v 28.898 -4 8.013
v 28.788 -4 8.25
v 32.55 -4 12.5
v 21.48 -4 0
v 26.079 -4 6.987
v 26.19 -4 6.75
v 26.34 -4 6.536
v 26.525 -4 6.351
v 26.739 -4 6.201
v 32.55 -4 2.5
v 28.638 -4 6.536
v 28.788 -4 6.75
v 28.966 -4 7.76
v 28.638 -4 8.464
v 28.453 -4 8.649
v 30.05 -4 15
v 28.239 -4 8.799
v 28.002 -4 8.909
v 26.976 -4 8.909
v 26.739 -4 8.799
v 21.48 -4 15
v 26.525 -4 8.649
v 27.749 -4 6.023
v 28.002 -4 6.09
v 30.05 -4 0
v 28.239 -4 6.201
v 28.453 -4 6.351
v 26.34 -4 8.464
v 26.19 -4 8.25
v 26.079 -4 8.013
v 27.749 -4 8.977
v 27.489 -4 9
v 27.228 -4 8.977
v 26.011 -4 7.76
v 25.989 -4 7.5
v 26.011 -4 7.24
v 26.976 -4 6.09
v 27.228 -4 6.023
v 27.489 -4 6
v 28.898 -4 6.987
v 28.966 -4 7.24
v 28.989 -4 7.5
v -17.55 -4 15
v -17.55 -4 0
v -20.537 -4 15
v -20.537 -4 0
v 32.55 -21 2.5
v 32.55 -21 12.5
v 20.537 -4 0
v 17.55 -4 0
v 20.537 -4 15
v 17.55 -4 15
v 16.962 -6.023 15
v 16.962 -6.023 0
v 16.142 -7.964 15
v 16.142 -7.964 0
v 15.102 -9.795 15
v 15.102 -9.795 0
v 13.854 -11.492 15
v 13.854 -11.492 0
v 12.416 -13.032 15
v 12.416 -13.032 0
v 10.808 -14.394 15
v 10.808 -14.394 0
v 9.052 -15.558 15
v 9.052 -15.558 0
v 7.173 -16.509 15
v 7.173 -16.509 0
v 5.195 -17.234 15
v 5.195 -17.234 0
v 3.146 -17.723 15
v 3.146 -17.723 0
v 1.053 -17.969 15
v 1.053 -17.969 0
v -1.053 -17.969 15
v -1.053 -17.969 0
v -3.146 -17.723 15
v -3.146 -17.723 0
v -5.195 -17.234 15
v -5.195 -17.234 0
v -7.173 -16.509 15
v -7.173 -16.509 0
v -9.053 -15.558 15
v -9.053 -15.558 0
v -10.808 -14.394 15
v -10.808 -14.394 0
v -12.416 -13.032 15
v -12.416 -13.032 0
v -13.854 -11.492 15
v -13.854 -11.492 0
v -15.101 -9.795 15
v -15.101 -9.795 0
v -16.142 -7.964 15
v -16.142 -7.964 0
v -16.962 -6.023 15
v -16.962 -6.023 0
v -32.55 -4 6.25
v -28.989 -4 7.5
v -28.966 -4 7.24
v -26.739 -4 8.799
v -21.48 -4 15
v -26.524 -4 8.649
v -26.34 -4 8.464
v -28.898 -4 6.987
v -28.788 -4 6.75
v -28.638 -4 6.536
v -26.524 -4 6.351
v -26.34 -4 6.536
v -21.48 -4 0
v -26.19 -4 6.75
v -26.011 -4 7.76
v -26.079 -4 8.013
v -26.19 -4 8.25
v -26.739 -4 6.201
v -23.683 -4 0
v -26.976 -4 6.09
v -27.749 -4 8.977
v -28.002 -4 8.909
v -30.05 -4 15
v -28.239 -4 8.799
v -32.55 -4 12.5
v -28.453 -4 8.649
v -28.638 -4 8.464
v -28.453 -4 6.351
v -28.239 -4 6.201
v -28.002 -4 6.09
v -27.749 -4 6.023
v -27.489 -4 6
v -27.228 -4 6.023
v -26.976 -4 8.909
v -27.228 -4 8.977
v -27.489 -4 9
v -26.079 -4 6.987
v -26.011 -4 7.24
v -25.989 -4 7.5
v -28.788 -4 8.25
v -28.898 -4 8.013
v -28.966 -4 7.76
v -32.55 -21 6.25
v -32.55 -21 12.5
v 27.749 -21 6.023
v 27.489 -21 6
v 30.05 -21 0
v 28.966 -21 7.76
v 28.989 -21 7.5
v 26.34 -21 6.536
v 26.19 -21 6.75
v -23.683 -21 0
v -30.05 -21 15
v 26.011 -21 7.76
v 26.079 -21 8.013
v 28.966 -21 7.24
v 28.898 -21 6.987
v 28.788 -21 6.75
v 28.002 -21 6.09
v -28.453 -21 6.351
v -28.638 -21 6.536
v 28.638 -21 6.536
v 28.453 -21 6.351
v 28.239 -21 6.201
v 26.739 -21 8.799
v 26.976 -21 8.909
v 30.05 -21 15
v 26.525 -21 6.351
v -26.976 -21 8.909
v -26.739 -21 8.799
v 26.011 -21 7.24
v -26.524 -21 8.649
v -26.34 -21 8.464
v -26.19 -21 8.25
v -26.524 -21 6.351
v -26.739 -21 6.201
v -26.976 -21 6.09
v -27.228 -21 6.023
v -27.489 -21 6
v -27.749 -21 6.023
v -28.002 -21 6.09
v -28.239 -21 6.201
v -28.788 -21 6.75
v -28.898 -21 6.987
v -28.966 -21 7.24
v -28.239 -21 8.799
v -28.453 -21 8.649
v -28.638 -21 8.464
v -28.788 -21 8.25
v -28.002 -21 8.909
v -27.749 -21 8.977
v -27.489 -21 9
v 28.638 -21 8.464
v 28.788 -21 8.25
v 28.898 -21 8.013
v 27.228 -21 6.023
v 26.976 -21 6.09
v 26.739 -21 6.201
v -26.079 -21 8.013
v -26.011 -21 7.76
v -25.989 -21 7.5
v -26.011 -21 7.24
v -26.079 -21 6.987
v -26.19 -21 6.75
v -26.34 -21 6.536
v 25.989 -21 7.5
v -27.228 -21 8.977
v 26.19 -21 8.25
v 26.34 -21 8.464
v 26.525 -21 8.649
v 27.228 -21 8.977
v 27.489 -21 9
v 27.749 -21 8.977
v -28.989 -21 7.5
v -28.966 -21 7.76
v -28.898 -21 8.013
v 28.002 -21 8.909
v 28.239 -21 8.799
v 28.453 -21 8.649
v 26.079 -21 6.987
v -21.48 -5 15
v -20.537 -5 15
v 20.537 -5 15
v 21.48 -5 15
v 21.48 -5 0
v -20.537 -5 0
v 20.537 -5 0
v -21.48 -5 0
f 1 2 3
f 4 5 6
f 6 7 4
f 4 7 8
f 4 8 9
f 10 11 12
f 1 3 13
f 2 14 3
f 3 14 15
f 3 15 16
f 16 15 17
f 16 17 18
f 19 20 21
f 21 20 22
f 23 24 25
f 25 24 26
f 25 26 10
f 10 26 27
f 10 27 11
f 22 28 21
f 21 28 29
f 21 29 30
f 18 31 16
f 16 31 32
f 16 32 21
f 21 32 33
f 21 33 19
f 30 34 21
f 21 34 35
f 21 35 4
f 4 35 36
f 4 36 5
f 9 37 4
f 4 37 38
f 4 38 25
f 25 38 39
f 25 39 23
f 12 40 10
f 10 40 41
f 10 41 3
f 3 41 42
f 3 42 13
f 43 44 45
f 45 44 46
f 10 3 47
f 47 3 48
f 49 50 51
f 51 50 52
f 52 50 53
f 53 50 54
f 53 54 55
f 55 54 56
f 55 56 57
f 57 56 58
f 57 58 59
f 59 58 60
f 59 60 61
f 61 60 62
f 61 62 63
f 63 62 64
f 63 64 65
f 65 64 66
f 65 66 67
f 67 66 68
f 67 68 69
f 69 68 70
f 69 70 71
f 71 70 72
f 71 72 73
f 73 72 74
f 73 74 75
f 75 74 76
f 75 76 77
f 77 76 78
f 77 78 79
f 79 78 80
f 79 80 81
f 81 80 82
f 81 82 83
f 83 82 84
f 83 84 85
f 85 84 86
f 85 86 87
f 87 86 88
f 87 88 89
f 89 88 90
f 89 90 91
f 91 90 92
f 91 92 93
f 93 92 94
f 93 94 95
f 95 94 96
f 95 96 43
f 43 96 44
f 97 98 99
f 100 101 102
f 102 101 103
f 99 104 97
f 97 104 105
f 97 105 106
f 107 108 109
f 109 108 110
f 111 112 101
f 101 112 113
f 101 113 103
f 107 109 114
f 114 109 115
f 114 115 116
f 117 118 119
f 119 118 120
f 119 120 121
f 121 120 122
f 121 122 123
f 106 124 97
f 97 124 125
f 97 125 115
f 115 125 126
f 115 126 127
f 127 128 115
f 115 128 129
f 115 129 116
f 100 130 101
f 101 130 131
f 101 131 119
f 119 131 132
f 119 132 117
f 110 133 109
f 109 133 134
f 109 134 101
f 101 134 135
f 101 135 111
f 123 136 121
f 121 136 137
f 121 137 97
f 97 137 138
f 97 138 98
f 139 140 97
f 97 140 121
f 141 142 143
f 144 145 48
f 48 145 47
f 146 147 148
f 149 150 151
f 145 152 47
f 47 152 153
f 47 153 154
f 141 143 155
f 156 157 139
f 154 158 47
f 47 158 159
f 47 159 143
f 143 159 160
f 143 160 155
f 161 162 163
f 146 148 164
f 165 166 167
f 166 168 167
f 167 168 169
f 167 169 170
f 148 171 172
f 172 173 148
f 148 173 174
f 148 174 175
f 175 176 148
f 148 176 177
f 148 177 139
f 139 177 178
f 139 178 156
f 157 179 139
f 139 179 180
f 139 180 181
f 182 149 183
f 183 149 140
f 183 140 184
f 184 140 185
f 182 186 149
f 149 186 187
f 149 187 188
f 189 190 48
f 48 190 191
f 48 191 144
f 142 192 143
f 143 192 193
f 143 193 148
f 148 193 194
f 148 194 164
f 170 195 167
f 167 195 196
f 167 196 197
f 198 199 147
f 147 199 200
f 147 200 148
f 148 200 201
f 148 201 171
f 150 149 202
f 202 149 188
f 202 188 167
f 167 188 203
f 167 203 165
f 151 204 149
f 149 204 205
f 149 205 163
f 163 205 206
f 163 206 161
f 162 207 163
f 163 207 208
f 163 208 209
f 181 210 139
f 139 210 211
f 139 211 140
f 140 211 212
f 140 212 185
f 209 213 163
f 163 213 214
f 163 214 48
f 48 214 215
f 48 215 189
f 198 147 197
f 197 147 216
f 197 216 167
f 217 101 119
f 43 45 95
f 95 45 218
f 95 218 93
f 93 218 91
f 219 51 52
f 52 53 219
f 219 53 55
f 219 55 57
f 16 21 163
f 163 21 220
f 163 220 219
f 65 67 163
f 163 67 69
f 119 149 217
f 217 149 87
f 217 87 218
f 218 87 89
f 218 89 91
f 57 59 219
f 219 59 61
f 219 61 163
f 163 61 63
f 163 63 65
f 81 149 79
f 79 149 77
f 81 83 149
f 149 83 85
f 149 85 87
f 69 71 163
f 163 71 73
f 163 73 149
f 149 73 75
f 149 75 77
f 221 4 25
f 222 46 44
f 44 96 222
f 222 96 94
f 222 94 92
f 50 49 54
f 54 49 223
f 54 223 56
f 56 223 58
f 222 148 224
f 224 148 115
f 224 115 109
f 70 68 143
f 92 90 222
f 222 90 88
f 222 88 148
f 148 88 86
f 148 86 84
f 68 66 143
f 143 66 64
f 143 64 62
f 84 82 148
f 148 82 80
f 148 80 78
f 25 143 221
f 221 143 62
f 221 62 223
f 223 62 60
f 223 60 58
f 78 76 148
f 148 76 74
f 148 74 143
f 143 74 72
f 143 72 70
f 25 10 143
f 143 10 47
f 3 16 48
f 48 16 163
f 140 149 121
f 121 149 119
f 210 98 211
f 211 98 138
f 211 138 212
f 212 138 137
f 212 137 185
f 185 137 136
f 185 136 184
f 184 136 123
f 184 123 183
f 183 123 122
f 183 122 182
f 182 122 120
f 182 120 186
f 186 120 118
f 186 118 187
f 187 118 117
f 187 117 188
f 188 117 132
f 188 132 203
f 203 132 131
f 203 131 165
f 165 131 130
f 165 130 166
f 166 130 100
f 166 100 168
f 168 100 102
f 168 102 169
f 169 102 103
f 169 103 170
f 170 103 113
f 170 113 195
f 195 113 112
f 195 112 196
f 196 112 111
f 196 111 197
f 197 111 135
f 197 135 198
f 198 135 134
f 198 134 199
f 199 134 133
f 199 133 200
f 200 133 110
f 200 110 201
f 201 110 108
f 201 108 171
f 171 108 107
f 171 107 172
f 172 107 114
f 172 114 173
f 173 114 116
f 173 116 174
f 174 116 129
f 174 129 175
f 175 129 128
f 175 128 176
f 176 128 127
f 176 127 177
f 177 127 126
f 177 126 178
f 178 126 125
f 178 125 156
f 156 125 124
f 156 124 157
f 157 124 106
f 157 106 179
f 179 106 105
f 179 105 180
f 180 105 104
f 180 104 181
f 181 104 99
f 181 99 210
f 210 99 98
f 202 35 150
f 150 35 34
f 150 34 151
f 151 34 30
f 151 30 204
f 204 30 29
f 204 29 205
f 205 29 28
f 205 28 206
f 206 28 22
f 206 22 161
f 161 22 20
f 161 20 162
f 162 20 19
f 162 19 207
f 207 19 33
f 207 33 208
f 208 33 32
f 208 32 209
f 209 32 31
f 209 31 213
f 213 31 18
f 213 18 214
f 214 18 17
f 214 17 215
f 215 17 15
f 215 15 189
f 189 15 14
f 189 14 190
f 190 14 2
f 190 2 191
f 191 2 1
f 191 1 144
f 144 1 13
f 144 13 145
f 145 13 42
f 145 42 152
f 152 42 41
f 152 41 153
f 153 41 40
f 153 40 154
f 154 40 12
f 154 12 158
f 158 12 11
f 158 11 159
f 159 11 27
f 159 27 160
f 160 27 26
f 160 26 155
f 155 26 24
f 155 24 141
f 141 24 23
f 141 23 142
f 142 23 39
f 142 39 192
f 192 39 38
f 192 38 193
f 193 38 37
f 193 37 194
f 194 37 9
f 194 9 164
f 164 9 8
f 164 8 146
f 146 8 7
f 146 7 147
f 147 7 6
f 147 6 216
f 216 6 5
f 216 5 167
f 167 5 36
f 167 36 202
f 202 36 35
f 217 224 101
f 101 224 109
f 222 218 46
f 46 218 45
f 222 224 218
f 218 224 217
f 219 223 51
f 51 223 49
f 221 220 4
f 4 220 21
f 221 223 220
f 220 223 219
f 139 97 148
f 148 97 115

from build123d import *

# Parameters (mm, degrees)
BOSS_EXTRUDE1_DEPTH = 15
CHAMFER1_SIZE       = 2.5
SKETCH2_R           = 1.5
CUT_EXTRUDE1_DEPTH  = 40.667340007
SKETCH3_W           = 0.942684348
SKETCH3_H           = 15
CUT_EXTRUDE2_DEPTH  = 1
CUT_EXTRUDE3_DEPTH  = 25


with BuildPart() as part:
    # Sketch1 → Boss-Extrude1 (new body)
    with BuildSketch(Plane.XY):
        with BuildLine():
            Line((-17.549928775, -4), (-32.549928775, -4))
            Line((-32.549928775, -4), (-32.549928775, -21))
            Line((-32.549928775, -21), (32.549928775, -21))
            Line((32.549928775, -21), (32.549928775, -4))
            Line((32.549928775, -4), (17.549928775, -4))
            ThreePointArc((17.549928775, -4), (0, -18), (-17.549928775, -4))
        make_face()
    extrude(amount=BOSS_EXTRUDE1_DEPTH)

    # Chamfer1
    chamfer1_edges = [part.edges().sort_by_distance(p)[0] for p in [
        (-32.549928775, -12.5, 15),
        (32.549928775, -12.5, 15),
        (32.549928775, -12.5, 0),
    ]]
    chamfer(chamfer1_edges, length=CHAMFER1_SIZE)

    # Sketch2 → Cut-Extrude1 (cut, through all)
    with BuildSketch(Plane(origin=(0, -4, 0), x_dir=(1, 0, 0), z_dir=(0, 1, 0))):
        with Locations(Location((27.488644481, -7.5, 0), (0, 0, 180))):
            Circle(SKETCH2_R)
        with Locations((-27.488644481, -7.5)):
            Circle(SKETCH2_R)
    extrude(amount=-CUT_EXTRUDE1_DEPTH, mode=Mode.SUBTRACT)

    # Sketch3 → Cut-Extrude2 (cut)
    with BuildSketch(Plane(origin=(0, -4, 0), x_dir=(1, 0, 0), z_dir=(0, 1, 0))):
        with Locations((-21.008394031, -7.5)):
            Rectangle(SKETCH3_W, SKETCH3_H)
    cut_extrude2 = extrude(amount=-CUT_EXTRUDE2_DEPTH, mode=Mode.SUBTRACT)

    # Mirror1: Cut-Extrude2 across plane
    add(cut_extrude2.mirror(Plane(origin=(0, 0, 0), x_dir=(0, 0, 1), z_dir=(1, 0, 0))), mode=Mode.SUBTRACT)

    # Sketch4 → Cut-Extrude3 (cut)
    with BuildSketch(Plane.XZ.offset(21)):
        Polygon((-23.68309692, 0), (-32.549928775, 6.25), (-32.549928775, 0), align=None)
    extrude(amount=-CUT_EXTRUDE3_DEPTH, mode=Mode.SUBTRACT)


solid = part.part
